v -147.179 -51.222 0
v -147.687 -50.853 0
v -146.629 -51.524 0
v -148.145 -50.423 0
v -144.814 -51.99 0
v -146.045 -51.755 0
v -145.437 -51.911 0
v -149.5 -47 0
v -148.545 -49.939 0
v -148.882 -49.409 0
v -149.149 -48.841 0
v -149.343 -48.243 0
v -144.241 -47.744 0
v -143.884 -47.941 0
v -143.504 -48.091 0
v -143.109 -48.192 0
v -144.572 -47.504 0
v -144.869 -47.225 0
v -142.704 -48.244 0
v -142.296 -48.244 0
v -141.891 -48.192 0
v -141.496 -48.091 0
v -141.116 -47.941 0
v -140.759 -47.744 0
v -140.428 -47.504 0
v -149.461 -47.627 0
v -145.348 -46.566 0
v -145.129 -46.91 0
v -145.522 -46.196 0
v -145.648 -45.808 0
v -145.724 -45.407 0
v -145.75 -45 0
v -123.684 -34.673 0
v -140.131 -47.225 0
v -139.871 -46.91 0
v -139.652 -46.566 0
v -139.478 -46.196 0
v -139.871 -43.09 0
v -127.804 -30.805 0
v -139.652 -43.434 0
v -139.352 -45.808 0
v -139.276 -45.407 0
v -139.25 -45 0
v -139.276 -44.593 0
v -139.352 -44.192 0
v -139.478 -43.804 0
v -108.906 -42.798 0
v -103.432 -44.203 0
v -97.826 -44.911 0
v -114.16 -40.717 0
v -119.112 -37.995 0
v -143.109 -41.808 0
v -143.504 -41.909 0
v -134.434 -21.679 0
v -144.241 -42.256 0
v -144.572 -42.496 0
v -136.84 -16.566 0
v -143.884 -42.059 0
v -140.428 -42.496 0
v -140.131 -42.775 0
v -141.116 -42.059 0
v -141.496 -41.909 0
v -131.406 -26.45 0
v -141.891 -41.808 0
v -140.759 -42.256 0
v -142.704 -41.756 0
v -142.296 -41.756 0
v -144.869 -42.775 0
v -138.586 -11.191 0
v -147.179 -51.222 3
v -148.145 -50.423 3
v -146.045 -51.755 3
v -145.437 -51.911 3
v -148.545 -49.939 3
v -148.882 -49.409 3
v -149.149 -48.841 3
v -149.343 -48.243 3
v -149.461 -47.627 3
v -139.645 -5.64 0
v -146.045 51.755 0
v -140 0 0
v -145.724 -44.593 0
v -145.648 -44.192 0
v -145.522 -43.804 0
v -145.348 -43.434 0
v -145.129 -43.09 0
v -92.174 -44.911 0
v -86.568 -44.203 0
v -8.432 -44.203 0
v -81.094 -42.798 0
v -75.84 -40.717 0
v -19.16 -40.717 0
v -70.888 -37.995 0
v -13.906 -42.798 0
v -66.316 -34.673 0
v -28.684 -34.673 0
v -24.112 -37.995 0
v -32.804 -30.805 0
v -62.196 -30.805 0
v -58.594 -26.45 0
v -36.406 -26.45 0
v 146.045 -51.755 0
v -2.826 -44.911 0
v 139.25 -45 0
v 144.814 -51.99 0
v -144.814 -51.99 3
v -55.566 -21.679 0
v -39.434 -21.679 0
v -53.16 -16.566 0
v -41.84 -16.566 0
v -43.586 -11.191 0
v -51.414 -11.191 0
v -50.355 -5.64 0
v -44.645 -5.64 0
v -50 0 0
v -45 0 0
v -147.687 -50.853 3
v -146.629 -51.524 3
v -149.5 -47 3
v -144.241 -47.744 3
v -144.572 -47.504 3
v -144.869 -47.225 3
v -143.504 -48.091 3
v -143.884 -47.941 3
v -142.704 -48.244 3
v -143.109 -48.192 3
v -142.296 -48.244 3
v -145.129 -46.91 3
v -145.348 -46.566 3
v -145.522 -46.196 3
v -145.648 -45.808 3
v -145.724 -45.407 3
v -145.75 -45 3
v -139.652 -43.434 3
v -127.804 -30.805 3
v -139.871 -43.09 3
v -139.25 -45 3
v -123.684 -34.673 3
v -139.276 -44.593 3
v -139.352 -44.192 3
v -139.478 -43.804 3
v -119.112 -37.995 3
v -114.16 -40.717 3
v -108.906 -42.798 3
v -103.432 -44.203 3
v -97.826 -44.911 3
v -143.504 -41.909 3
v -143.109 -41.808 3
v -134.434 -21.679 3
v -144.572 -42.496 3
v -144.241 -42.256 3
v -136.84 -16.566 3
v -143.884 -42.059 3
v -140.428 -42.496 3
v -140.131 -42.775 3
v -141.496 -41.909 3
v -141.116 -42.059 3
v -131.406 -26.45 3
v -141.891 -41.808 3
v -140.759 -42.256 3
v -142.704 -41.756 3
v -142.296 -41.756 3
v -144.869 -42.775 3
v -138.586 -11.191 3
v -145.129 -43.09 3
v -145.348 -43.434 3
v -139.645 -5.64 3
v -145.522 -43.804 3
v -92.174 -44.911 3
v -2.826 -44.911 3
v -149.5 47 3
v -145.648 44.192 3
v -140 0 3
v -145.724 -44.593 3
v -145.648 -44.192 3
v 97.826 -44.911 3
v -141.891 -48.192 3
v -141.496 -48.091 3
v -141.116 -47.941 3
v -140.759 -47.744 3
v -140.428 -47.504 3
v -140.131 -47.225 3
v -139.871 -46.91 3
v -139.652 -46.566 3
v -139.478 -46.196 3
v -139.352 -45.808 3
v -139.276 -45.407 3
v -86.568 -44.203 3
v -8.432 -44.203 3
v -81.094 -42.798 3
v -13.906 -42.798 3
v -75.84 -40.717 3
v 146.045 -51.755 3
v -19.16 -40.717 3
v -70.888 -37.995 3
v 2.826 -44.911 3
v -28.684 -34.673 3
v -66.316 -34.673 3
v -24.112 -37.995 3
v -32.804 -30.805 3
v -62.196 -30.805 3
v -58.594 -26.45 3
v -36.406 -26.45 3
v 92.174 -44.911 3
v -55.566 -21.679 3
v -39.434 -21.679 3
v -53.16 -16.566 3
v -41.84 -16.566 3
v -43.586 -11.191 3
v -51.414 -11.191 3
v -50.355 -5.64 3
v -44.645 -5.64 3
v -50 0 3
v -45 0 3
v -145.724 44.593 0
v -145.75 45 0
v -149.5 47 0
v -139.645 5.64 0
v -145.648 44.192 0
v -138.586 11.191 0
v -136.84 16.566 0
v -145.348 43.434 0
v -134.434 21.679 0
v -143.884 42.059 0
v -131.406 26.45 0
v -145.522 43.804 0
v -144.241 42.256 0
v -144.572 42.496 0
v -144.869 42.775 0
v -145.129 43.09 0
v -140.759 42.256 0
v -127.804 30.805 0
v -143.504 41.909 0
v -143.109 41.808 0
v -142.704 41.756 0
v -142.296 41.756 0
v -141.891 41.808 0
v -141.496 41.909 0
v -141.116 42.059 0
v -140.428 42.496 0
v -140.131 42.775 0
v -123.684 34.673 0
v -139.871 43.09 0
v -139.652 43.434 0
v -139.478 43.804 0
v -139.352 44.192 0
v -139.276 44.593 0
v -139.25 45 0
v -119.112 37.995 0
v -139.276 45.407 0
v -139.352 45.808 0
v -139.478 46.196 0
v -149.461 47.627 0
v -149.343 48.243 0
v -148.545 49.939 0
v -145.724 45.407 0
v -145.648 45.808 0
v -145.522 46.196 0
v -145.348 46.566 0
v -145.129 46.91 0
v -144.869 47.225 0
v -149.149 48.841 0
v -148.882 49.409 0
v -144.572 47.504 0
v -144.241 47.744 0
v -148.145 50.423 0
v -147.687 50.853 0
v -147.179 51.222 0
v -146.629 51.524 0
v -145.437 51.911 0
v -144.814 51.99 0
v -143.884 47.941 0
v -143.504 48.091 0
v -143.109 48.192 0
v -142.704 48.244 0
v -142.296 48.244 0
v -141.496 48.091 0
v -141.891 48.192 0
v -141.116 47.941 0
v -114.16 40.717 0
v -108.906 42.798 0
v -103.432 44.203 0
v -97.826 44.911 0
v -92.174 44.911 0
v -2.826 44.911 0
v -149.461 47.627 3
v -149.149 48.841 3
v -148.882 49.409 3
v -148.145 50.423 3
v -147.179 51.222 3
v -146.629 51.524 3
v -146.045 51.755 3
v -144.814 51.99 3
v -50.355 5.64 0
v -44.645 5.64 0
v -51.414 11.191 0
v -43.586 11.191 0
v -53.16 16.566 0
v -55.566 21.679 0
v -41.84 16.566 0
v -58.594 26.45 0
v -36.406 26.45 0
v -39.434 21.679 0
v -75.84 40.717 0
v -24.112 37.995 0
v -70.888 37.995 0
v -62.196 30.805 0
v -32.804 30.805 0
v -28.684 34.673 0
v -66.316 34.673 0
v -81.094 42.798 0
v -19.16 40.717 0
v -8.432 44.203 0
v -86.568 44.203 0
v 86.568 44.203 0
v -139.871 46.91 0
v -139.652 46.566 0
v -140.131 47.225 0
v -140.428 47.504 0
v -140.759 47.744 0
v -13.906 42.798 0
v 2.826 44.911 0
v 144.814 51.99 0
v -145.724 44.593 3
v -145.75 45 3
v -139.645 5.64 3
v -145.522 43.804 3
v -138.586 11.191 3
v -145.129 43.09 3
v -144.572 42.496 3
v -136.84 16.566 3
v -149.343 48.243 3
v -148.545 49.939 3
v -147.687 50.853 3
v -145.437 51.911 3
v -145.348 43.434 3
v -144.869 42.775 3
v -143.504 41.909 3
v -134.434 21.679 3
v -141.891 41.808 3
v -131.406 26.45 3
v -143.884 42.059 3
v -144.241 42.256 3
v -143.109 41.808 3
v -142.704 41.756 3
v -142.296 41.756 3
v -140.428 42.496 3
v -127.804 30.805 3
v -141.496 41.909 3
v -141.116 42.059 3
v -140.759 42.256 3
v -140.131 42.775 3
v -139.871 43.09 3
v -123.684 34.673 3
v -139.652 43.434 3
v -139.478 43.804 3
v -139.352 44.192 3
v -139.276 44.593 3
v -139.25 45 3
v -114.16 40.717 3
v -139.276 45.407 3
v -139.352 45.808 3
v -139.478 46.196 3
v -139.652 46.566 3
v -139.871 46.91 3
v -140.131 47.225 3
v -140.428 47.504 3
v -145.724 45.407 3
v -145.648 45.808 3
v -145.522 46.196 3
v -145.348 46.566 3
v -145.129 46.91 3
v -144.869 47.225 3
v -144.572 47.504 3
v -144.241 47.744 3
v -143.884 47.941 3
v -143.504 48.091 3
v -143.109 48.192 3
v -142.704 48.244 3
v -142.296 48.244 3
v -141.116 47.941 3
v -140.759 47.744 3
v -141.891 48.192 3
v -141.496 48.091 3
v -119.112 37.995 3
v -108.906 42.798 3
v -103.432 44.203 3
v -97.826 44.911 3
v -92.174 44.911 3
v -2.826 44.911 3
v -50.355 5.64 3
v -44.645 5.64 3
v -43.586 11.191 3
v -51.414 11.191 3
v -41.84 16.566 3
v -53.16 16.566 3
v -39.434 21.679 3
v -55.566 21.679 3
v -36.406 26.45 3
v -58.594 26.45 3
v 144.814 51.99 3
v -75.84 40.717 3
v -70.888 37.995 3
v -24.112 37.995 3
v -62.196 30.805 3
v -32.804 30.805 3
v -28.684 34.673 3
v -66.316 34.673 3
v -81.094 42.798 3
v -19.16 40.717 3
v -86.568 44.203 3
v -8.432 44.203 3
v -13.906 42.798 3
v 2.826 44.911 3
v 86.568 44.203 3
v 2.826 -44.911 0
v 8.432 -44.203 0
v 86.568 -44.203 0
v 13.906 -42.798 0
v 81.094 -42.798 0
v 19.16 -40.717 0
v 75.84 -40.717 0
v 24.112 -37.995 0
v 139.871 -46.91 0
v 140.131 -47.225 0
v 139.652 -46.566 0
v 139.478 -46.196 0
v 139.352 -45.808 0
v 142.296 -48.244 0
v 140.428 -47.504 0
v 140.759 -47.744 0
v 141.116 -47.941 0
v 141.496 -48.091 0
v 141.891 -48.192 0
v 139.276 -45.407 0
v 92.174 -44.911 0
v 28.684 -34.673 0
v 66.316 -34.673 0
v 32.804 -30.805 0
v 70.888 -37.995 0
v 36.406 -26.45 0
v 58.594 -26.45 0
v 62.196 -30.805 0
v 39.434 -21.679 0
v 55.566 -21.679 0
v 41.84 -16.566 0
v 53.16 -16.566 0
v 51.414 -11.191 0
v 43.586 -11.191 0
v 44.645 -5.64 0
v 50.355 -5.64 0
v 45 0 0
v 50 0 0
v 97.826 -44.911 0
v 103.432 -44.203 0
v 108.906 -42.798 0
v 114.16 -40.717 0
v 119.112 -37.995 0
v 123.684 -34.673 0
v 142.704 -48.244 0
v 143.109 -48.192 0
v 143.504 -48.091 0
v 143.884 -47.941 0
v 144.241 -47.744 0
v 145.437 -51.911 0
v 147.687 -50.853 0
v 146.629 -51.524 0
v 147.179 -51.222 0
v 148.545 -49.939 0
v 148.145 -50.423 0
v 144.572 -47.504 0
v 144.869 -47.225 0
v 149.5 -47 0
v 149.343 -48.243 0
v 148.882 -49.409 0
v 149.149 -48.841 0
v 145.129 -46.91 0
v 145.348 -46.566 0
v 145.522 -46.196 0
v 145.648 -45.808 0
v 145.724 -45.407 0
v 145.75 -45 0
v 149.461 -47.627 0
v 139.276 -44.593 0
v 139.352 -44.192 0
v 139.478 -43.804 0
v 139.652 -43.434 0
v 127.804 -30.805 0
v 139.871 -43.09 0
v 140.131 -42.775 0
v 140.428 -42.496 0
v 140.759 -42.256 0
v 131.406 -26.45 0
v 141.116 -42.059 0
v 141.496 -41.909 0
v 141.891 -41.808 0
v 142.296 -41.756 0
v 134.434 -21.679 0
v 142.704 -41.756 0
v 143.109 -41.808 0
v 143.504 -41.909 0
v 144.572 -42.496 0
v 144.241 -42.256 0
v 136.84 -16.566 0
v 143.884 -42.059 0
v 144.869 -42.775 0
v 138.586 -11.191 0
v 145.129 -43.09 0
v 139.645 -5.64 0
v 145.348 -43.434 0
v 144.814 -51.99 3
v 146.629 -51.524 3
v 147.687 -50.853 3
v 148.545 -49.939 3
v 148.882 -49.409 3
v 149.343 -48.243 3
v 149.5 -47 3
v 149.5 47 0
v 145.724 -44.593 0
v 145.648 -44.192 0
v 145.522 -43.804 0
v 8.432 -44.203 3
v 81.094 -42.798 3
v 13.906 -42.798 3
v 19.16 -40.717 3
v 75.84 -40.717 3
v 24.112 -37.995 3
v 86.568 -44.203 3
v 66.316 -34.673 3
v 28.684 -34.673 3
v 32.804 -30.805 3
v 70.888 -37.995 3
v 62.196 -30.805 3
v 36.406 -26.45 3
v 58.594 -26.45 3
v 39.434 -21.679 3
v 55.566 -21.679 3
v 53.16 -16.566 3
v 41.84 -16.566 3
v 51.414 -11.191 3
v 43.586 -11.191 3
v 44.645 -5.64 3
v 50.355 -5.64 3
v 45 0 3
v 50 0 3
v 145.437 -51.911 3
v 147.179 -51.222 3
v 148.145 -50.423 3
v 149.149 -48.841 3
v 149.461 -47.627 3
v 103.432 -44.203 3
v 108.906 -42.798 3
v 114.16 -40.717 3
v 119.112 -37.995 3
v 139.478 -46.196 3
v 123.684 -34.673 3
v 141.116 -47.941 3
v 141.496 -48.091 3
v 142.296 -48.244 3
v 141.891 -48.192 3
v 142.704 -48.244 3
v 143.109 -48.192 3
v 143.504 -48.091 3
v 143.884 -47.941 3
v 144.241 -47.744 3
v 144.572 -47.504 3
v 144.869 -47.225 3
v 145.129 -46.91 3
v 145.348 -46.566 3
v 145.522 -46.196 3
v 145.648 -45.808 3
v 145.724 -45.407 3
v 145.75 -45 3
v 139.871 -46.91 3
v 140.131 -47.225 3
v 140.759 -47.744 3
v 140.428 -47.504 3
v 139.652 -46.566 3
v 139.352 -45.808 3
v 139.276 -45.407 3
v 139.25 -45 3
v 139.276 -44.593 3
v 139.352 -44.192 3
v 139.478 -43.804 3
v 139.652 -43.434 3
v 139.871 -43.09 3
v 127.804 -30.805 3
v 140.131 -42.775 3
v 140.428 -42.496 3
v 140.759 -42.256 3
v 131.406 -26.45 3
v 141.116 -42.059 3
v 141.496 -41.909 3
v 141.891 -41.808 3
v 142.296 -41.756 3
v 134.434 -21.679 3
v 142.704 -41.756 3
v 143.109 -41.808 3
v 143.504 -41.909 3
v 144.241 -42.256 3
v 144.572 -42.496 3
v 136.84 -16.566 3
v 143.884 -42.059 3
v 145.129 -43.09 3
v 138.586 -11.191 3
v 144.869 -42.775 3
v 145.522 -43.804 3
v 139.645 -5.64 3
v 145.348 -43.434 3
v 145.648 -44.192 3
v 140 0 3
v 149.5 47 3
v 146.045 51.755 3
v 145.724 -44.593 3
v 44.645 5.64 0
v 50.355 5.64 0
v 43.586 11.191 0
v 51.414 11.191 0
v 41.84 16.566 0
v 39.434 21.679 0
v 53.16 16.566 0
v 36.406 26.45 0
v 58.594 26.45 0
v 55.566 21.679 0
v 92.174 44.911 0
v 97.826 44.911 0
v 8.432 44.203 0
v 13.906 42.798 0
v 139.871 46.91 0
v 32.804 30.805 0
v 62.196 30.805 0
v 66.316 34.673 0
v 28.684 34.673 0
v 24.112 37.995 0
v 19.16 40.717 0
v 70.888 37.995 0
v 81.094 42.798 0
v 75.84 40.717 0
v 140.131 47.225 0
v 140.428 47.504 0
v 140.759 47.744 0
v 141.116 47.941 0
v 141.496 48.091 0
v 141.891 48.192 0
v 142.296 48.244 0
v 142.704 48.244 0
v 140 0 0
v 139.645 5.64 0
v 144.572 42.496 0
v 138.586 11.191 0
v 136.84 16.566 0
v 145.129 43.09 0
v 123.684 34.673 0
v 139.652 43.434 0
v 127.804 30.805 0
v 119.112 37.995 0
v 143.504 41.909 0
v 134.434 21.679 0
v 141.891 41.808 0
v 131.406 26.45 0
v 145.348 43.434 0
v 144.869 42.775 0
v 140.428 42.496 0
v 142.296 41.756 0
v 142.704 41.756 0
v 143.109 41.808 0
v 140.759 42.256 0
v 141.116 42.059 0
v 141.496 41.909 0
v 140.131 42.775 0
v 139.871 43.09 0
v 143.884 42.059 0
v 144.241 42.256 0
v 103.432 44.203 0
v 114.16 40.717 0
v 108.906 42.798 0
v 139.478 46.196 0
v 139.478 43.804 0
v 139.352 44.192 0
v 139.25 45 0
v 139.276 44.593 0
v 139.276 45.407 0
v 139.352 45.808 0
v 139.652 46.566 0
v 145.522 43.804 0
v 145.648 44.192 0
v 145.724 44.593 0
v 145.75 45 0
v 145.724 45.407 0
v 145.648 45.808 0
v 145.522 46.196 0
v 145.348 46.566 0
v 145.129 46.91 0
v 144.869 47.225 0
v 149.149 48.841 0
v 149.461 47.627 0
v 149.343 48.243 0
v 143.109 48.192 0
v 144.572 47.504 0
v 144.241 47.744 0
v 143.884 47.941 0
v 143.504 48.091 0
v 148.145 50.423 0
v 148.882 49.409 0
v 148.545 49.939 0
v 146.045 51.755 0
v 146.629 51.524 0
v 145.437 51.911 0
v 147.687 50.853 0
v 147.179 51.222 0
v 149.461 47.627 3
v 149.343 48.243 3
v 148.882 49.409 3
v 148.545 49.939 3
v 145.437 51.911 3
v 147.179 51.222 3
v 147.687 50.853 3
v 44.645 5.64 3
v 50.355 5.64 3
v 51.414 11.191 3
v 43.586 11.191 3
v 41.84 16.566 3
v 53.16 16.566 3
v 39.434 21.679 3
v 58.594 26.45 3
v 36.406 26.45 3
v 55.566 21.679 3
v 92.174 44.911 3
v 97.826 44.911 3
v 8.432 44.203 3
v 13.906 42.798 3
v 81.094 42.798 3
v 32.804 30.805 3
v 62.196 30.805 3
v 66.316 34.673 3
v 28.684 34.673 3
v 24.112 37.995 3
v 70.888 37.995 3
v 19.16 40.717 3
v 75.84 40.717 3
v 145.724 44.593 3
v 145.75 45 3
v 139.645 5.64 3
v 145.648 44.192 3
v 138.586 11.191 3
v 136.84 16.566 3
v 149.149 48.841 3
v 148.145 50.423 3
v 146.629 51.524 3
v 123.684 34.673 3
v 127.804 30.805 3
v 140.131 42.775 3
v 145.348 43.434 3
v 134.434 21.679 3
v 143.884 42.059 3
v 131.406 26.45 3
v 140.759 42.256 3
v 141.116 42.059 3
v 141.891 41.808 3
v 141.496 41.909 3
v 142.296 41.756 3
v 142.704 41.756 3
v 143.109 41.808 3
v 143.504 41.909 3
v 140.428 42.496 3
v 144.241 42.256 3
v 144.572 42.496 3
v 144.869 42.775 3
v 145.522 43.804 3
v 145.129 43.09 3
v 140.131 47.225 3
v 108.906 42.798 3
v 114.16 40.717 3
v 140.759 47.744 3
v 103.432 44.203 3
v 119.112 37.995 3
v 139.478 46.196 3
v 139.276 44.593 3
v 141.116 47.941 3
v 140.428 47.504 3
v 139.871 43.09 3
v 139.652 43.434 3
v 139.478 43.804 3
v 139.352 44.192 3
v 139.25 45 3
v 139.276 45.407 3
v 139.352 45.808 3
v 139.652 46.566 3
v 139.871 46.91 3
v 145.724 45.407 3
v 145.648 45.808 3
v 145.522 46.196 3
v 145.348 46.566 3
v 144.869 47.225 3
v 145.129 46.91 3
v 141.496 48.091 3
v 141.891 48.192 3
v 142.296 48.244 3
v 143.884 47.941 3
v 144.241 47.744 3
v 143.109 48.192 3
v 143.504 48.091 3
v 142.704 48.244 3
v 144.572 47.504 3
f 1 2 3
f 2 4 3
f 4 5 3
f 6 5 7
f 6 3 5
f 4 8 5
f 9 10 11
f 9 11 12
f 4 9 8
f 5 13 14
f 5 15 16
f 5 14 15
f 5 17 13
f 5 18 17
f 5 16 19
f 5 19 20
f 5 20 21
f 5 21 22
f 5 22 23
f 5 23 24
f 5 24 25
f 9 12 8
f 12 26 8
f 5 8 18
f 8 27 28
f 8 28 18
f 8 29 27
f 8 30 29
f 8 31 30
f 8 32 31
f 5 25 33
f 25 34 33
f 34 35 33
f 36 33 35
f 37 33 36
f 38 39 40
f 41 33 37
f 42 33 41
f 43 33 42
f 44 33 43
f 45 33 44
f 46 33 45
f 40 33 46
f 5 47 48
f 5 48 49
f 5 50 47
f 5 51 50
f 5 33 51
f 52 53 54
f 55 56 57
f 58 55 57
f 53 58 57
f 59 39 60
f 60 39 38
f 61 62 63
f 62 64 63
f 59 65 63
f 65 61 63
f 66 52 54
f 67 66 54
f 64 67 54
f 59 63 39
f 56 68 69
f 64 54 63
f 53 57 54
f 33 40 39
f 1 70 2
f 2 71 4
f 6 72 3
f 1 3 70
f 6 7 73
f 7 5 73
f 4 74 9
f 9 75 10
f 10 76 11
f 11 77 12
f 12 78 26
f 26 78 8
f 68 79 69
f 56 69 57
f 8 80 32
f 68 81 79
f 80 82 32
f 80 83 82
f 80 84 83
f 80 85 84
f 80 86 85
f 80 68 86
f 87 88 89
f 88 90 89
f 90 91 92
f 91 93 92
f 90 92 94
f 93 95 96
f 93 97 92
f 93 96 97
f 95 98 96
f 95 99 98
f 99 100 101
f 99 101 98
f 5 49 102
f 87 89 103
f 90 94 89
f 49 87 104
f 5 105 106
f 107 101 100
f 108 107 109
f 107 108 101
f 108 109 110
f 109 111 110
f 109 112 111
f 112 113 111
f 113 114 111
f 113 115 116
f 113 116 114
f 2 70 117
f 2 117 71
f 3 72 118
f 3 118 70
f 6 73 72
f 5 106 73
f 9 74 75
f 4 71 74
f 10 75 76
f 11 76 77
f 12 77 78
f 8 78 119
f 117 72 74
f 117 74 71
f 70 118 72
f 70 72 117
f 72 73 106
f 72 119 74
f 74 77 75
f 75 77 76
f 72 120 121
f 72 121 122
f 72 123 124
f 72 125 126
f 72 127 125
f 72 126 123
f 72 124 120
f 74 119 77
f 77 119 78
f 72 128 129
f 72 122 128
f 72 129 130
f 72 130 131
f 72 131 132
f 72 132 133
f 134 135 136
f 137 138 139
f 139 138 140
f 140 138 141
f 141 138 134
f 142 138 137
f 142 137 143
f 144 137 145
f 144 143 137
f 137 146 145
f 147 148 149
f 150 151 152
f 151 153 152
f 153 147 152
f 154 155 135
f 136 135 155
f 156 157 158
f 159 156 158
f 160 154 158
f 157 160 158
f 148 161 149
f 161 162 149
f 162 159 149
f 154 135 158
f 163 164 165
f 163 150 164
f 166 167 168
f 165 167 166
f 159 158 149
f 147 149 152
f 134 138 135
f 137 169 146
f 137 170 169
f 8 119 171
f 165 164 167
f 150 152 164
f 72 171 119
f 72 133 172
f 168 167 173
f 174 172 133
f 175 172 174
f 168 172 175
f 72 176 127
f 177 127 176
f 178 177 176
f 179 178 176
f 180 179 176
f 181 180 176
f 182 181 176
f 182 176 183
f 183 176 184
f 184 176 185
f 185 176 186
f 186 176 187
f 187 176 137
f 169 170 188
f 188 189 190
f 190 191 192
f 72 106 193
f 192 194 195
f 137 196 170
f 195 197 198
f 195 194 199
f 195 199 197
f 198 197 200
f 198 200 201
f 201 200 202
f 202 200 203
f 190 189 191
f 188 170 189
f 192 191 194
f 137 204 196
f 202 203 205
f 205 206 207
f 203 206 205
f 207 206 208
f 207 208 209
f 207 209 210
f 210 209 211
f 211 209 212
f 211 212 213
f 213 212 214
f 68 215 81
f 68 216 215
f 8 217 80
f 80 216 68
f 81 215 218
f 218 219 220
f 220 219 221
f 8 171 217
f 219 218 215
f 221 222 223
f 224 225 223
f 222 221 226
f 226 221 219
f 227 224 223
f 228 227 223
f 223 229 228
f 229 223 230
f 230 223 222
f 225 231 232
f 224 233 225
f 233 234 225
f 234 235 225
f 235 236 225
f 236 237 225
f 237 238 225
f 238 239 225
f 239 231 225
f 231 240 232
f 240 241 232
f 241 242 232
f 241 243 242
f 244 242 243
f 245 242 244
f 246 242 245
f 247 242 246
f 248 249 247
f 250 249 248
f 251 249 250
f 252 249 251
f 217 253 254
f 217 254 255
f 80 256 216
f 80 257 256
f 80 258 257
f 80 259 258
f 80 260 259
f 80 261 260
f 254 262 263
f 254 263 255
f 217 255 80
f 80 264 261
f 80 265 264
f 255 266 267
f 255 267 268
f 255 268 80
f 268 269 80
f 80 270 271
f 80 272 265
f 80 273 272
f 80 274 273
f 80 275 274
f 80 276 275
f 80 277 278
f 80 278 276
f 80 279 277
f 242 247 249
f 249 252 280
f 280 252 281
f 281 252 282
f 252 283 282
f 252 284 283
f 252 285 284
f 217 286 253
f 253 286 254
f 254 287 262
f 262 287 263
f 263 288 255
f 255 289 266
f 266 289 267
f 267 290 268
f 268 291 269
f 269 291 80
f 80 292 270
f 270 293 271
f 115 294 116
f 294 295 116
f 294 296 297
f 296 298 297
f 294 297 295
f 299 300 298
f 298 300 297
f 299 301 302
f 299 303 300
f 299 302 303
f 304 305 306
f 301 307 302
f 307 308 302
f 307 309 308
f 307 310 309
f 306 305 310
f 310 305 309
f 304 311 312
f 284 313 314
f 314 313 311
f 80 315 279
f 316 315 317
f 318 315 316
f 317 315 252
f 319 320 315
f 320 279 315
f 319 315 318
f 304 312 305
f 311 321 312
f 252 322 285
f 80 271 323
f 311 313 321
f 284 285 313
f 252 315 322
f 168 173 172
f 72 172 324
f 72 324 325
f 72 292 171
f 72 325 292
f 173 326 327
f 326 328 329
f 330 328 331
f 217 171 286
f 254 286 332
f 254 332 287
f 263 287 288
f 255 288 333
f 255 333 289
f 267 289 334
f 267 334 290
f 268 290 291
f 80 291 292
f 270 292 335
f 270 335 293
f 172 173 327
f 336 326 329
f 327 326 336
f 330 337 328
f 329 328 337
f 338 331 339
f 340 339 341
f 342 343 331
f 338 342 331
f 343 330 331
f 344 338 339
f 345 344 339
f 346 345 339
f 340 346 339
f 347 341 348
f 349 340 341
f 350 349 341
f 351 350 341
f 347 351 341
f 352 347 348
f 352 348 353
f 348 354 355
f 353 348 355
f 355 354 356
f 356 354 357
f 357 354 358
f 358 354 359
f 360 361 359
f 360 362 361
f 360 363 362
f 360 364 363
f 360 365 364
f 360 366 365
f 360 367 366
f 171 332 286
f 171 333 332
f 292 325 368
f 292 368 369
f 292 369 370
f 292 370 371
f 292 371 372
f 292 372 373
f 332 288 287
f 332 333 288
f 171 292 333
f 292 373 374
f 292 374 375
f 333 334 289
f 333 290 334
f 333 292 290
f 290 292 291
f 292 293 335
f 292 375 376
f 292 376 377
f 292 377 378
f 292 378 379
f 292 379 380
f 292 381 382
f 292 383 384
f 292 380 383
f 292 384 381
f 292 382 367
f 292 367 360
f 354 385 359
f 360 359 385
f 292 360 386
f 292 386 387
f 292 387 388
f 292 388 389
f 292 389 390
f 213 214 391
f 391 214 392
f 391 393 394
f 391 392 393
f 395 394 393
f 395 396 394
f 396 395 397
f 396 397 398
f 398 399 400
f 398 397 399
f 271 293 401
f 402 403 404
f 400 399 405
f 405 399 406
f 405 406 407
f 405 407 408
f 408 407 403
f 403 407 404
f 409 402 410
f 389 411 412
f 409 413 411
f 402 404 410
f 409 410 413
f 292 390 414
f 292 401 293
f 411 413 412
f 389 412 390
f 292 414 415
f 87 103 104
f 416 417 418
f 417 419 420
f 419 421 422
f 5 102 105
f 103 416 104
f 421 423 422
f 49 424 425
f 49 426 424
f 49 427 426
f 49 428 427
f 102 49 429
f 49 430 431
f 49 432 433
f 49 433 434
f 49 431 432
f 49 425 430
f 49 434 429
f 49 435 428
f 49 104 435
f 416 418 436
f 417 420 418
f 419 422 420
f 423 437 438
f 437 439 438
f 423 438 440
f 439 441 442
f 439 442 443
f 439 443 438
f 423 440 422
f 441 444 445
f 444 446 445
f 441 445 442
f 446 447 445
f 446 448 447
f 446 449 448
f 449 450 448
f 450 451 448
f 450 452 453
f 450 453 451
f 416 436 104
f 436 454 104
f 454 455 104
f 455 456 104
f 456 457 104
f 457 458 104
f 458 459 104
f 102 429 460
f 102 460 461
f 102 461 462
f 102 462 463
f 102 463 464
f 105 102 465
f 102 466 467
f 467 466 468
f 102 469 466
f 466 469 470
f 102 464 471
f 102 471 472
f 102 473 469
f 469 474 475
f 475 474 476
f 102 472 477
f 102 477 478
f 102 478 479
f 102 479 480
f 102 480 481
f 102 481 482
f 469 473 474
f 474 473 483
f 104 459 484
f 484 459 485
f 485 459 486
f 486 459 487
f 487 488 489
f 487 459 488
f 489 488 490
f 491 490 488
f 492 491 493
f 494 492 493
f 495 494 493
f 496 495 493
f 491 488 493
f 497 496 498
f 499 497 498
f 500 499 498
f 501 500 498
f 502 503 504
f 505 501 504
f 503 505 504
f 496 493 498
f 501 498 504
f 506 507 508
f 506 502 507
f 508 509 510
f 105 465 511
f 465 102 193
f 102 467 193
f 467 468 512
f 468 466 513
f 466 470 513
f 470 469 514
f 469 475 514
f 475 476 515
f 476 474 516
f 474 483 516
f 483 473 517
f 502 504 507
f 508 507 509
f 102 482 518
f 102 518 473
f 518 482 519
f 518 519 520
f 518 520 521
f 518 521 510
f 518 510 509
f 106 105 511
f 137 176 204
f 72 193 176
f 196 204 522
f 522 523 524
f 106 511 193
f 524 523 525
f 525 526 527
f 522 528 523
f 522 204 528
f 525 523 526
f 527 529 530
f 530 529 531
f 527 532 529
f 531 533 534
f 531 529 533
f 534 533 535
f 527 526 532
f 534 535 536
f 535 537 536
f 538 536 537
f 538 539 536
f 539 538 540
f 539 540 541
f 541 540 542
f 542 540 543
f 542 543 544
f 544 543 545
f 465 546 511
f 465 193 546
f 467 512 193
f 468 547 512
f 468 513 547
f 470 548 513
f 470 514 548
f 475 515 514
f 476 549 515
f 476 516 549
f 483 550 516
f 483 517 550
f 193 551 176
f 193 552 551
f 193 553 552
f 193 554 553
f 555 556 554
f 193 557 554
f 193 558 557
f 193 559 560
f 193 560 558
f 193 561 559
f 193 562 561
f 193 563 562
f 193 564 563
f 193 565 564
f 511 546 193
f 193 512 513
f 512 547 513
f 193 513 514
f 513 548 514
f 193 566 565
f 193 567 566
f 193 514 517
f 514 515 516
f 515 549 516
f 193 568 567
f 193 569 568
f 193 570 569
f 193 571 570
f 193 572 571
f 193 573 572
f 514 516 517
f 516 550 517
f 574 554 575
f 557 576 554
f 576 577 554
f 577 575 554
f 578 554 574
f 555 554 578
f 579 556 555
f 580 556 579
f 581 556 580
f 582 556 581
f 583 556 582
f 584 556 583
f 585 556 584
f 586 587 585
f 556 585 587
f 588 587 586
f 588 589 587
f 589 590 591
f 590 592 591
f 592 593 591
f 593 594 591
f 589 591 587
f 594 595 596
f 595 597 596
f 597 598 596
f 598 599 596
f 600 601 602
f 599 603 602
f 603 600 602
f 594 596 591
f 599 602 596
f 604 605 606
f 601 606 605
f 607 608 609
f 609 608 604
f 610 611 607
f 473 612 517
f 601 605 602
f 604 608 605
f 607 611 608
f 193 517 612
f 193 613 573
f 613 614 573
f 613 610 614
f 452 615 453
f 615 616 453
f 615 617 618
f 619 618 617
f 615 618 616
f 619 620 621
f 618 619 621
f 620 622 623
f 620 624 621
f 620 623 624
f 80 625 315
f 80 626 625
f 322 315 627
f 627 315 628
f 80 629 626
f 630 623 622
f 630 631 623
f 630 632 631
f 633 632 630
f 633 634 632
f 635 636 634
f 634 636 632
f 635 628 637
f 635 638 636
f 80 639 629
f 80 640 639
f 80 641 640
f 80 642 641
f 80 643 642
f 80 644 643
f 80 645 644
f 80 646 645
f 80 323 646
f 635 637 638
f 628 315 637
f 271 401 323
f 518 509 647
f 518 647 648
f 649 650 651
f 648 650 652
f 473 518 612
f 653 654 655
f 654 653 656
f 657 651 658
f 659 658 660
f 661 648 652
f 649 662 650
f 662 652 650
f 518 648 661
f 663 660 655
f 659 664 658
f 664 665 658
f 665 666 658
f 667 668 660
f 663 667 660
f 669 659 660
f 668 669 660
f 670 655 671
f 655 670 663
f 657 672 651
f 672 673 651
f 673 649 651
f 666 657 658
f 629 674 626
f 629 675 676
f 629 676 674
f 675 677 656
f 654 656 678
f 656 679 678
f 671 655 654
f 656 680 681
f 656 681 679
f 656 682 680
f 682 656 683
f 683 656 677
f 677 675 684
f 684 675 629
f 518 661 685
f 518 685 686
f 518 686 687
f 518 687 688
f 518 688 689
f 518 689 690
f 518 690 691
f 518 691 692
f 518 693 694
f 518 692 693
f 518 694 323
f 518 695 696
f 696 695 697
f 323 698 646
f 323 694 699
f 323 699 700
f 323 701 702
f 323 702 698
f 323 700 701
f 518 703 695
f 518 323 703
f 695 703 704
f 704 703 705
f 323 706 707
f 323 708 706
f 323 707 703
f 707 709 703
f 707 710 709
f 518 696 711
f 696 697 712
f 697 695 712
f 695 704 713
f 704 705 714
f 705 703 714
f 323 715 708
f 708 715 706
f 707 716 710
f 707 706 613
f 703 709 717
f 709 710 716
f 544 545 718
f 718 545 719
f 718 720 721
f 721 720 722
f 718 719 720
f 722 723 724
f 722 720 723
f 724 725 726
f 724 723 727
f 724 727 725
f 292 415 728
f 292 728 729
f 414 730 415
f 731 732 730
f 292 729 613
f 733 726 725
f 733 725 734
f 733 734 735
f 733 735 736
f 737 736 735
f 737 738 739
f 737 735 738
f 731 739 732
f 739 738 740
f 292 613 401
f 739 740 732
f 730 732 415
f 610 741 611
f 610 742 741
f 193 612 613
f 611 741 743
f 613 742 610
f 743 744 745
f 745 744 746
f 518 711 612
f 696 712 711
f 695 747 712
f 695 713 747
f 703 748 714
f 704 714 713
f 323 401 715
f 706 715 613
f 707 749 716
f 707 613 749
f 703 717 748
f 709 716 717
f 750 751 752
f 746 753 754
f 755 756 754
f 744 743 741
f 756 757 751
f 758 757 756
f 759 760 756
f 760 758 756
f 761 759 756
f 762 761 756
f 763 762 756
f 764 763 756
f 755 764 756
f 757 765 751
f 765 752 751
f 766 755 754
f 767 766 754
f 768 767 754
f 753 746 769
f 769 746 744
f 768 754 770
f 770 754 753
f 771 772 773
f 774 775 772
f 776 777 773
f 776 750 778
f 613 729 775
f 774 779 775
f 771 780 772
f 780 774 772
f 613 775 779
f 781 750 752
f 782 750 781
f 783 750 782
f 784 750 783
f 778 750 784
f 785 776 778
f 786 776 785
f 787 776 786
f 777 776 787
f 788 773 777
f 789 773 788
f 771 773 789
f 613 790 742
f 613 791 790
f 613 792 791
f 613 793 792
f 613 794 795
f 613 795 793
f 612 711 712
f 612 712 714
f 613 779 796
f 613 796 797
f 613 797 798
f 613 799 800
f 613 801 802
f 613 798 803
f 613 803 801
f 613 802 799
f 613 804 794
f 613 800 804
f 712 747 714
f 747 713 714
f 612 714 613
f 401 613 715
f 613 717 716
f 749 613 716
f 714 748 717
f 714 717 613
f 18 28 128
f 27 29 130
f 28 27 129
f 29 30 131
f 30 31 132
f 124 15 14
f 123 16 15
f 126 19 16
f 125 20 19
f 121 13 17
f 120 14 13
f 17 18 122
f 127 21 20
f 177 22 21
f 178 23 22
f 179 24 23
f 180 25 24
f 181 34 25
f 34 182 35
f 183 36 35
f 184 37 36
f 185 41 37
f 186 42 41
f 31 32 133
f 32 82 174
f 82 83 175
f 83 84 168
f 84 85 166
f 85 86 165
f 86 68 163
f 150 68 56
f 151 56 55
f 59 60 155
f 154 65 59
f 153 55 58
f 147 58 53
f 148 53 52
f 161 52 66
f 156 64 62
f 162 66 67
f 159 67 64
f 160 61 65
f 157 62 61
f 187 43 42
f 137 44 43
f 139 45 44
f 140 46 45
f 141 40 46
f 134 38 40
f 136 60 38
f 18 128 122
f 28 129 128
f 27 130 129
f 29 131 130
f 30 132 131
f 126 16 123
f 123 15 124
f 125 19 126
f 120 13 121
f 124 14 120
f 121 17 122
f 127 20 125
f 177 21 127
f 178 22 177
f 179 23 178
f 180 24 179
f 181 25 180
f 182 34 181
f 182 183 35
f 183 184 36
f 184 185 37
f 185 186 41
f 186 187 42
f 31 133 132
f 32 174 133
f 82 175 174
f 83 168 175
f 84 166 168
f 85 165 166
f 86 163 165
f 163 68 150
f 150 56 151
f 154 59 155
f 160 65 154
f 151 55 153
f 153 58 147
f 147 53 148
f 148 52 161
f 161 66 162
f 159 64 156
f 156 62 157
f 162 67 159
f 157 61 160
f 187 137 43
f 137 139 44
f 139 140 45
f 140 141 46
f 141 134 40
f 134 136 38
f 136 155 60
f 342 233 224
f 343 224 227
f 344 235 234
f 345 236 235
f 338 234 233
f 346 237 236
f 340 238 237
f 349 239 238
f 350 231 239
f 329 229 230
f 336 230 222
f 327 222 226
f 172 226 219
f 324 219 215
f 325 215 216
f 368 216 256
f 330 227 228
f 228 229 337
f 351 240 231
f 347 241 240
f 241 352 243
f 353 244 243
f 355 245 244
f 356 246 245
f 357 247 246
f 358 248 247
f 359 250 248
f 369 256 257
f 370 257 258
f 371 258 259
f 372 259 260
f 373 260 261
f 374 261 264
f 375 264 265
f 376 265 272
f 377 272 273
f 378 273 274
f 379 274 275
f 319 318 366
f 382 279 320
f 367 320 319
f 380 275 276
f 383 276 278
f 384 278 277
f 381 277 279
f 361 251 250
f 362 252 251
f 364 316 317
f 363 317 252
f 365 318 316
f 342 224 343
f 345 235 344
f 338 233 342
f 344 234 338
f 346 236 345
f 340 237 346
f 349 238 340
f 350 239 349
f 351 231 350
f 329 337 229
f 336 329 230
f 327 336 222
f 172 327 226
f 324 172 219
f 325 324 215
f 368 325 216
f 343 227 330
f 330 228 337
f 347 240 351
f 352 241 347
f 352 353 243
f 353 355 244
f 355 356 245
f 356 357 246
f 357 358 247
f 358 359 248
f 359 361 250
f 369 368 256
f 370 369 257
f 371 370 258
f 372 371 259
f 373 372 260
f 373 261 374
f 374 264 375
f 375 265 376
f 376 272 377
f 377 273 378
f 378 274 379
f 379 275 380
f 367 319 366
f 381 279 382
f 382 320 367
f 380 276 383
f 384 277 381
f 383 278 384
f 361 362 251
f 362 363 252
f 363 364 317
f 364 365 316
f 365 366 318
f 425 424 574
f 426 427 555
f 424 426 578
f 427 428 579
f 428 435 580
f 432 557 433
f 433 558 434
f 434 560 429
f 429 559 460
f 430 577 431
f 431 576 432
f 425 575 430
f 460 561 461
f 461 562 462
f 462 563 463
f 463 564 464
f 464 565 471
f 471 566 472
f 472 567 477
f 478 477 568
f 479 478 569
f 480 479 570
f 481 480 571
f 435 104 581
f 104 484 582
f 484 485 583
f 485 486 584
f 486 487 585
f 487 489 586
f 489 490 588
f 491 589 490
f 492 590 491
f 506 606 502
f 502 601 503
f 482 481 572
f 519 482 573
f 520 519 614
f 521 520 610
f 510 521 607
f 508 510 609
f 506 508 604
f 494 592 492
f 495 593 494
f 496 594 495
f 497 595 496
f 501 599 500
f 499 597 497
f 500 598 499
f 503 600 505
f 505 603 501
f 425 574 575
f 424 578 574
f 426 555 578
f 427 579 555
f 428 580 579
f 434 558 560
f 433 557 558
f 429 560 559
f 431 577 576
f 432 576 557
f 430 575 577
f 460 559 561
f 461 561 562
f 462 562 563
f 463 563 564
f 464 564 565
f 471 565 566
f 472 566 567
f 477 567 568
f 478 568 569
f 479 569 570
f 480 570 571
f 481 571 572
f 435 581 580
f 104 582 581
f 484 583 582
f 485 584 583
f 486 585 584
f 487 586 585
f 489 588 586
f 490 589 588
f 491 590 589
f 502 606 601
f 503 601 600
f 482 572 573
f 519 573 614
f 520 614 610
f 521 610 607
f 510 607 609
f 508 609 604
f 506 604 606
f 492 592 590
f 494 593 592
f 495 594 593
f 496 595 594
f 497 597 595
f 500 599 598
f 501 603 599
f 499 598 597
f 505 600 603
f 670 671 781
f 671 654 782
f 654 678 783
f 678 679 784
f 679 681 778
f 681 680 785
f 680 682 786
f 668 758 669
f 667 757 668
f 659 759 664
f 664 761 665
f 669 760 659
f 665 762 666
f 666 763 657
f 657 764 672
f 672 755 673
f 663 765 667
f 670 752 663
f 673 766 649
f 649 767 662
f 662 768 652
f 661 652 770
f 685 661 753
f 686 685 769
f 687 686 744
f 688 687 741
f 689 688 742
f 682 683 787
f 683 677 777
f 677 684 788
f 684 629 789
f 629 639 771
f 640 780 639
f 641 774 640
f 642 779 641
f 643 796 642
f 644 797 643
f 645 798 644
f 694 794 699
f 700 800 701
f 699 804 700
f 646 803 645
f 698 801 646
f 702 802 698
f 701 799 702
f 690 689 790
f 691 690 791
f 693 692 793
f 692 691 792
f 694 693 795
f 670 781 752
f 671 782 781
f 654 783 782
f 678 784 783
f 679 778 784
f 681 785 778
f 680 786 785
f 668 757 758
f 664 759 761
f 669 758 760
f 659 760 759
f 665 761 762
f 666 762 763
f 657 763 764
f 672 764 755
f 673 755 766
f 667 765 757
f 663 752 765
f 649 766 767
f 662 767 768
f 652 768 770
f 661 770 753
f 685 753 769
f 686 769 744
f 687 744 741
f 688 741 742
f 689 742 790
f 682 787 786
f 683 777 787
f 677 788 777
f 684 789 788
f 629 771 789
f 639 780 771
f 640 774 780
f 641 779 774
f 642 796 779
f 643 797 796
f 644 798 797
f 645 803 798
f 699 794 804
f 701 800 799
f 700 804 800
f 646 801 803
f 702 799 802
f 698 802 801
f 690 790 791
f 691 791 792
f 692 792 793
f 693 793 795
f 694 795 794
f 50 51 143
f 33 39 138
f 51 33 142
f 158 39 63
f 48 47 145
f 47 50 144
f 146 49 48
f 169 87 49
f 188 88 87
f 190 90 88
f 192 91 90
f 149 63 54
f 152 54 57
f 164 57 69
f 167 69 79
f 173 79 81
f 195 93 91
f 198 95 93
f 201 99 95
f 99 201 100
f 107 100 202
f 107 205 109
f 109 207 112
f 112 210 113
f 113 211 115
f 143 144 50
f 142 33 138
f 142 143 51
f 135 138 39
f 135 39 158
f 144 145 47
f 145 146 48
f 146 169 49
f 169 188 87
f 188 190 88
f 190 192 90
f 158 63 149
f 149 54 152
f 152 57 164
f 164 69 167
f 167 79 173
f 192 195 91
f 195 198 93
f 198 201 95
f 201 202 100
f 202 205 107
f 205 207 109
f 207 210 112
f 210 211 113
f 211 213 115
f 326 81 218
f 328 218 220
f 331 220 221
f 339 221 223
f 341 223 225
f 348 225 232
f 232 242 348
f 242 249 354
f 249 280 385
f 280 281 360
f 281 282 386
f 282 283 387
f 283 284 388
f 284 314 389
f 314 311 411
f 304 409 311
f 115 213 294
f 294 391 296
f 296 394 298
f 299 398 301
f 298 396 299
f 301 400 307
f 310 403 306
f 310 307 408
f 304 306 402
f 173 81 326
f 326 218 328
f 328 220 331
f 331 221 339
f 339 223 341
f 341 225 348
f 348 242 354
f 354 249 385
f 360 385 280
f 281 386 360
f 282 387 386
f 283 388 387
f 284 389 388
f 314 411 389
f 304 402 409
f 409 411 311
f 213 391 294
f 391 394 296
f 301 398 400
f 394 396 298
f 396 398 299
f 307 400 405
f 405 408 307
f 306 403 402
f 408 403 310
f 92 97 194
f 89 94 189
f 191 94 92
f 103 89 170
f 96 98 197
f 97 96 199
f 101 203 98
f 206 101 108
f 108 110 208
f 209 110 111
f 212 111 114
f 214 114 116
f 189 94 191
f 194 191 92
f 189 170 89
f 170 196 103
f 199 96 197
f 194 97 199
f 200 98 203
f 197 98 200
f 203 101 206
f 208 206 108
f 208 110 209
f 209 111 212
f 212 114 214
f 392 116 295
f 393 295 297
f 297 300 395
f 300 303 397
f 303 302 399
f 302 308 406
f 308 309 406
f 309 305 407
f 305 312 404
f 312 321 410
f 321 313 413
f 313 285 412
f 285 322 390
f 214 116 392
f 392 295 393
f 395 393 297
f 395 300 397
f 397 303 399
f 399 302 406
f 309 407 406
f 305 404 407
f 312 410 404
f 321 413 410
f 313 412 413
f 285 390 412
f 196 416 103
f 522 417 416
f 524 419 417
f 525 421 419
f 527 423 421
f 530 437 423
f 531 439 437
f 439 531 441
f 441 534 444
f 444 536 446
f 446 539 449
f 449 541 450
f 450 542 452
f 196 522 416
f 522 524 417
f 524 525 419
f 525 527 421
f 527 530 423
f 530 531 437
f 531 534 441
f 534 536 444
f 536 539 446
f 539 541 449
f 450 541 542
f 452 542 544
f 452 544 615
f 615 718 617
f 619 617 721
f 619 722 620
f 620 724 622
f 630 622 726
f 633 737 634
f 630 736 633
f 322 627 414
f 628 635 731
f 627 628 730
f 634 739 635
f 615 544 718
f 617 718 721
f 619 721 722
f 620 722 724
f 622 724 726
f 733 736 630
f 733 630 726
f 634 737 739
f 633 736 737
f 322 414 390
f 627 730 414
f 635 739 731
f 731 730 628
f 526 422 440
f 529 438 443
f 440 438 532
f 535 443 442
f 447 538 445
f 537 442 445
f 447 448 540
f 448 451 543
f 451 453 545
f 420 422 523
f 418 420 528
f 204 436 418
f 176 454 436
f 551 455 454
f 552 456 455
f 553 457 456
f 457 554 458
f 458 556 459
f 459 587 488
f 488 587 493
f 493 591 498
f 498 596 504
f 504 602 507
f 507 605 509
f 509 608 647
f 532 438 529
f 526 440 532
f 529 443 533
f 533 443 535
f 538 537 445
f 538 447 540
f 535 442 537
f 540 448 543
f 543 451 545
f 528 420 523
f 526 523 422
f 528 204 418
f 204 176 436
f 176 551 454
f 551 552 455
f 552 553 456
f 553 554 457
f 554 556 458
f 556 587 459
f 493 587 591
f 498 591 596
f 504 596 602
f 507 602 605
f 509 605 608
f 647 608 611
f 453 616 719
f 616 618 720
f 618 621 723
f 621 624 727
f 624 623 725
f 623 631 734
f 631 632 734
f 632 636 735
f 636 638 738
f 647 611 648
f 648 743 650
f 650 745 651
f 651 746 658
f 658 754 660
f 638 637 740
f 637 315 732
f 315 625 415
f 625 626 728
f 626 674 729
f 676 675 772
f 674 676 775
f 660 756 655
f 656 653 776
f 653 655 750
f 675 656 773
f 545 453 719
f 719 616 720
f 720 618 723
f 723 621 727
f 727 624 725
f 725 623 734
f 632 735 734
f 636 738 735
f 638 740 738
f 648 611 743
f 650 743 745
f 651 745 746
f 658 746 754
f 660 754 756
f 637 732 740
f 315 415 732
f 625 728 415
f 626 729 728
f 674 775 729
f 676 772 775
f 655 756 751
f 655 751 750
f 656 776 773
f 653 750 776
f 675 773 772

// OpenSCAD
$fn = 50;

difference() {
	union() {
		hull() {
			translate(v = [-144.5, 47.0, 0]) {
				cylinder(h = 3, r = 5);
			}
			translate(v = [144.5, 47.0, 0]) {
				cylinder(h = 3, r = 5);
			}
			translate(v = [-144.5, -47.0, 0]) {
				cylinder(h = 3, r = 5);
			}
			translate(v = [144.5, -47.0, 0]) {
				cylinder(h = 3, r = 5);
			}
		}
	}
	union() {
		translate(v = [-142.5, -45.0, -100.0]) {
			cylinder(h = 200, r = 3.25);
		}
		translate(v = [-142.5, 45.0, -100.0]) {
			cylinder(h = 200, r = 3.25);
		}
		translate(v = [142.5, -45.0, -100.0]) {
			cylinder(h = 200, r = 3.25);
		}
		translate(v = [142.5, 45.0, -100.0]) {
			cylinder(h = 200, r = 3.25);
		}
		translate(v = [-142.5, -45.0, -100.0]) {
			cylinder(h = 200, r = 1.8);
		}
		translate(v = [-142.5, 45.0, -100.0]) {
			cylinder(h = 200, r = 1.8);
		}
		translate(v = [142.5, -45.0, -100.0]) {
			cylinder(h = 200, r = 1.8);
		}
		translate(v = [142.5, 45.0, -100.0]) {
			cylinder(h = 200, r = 1.8);
		}
		translate(v = [-95.0, 0, 0.0]) {
			cylinder(h = 3, r = 45.0);
		}
		cylinder(h = 3, r = 45.0);
		translate(v = [95.0, 0, 0.0]) {
			cylinder(h = 3, r = 45.0);
		}
	}
}
